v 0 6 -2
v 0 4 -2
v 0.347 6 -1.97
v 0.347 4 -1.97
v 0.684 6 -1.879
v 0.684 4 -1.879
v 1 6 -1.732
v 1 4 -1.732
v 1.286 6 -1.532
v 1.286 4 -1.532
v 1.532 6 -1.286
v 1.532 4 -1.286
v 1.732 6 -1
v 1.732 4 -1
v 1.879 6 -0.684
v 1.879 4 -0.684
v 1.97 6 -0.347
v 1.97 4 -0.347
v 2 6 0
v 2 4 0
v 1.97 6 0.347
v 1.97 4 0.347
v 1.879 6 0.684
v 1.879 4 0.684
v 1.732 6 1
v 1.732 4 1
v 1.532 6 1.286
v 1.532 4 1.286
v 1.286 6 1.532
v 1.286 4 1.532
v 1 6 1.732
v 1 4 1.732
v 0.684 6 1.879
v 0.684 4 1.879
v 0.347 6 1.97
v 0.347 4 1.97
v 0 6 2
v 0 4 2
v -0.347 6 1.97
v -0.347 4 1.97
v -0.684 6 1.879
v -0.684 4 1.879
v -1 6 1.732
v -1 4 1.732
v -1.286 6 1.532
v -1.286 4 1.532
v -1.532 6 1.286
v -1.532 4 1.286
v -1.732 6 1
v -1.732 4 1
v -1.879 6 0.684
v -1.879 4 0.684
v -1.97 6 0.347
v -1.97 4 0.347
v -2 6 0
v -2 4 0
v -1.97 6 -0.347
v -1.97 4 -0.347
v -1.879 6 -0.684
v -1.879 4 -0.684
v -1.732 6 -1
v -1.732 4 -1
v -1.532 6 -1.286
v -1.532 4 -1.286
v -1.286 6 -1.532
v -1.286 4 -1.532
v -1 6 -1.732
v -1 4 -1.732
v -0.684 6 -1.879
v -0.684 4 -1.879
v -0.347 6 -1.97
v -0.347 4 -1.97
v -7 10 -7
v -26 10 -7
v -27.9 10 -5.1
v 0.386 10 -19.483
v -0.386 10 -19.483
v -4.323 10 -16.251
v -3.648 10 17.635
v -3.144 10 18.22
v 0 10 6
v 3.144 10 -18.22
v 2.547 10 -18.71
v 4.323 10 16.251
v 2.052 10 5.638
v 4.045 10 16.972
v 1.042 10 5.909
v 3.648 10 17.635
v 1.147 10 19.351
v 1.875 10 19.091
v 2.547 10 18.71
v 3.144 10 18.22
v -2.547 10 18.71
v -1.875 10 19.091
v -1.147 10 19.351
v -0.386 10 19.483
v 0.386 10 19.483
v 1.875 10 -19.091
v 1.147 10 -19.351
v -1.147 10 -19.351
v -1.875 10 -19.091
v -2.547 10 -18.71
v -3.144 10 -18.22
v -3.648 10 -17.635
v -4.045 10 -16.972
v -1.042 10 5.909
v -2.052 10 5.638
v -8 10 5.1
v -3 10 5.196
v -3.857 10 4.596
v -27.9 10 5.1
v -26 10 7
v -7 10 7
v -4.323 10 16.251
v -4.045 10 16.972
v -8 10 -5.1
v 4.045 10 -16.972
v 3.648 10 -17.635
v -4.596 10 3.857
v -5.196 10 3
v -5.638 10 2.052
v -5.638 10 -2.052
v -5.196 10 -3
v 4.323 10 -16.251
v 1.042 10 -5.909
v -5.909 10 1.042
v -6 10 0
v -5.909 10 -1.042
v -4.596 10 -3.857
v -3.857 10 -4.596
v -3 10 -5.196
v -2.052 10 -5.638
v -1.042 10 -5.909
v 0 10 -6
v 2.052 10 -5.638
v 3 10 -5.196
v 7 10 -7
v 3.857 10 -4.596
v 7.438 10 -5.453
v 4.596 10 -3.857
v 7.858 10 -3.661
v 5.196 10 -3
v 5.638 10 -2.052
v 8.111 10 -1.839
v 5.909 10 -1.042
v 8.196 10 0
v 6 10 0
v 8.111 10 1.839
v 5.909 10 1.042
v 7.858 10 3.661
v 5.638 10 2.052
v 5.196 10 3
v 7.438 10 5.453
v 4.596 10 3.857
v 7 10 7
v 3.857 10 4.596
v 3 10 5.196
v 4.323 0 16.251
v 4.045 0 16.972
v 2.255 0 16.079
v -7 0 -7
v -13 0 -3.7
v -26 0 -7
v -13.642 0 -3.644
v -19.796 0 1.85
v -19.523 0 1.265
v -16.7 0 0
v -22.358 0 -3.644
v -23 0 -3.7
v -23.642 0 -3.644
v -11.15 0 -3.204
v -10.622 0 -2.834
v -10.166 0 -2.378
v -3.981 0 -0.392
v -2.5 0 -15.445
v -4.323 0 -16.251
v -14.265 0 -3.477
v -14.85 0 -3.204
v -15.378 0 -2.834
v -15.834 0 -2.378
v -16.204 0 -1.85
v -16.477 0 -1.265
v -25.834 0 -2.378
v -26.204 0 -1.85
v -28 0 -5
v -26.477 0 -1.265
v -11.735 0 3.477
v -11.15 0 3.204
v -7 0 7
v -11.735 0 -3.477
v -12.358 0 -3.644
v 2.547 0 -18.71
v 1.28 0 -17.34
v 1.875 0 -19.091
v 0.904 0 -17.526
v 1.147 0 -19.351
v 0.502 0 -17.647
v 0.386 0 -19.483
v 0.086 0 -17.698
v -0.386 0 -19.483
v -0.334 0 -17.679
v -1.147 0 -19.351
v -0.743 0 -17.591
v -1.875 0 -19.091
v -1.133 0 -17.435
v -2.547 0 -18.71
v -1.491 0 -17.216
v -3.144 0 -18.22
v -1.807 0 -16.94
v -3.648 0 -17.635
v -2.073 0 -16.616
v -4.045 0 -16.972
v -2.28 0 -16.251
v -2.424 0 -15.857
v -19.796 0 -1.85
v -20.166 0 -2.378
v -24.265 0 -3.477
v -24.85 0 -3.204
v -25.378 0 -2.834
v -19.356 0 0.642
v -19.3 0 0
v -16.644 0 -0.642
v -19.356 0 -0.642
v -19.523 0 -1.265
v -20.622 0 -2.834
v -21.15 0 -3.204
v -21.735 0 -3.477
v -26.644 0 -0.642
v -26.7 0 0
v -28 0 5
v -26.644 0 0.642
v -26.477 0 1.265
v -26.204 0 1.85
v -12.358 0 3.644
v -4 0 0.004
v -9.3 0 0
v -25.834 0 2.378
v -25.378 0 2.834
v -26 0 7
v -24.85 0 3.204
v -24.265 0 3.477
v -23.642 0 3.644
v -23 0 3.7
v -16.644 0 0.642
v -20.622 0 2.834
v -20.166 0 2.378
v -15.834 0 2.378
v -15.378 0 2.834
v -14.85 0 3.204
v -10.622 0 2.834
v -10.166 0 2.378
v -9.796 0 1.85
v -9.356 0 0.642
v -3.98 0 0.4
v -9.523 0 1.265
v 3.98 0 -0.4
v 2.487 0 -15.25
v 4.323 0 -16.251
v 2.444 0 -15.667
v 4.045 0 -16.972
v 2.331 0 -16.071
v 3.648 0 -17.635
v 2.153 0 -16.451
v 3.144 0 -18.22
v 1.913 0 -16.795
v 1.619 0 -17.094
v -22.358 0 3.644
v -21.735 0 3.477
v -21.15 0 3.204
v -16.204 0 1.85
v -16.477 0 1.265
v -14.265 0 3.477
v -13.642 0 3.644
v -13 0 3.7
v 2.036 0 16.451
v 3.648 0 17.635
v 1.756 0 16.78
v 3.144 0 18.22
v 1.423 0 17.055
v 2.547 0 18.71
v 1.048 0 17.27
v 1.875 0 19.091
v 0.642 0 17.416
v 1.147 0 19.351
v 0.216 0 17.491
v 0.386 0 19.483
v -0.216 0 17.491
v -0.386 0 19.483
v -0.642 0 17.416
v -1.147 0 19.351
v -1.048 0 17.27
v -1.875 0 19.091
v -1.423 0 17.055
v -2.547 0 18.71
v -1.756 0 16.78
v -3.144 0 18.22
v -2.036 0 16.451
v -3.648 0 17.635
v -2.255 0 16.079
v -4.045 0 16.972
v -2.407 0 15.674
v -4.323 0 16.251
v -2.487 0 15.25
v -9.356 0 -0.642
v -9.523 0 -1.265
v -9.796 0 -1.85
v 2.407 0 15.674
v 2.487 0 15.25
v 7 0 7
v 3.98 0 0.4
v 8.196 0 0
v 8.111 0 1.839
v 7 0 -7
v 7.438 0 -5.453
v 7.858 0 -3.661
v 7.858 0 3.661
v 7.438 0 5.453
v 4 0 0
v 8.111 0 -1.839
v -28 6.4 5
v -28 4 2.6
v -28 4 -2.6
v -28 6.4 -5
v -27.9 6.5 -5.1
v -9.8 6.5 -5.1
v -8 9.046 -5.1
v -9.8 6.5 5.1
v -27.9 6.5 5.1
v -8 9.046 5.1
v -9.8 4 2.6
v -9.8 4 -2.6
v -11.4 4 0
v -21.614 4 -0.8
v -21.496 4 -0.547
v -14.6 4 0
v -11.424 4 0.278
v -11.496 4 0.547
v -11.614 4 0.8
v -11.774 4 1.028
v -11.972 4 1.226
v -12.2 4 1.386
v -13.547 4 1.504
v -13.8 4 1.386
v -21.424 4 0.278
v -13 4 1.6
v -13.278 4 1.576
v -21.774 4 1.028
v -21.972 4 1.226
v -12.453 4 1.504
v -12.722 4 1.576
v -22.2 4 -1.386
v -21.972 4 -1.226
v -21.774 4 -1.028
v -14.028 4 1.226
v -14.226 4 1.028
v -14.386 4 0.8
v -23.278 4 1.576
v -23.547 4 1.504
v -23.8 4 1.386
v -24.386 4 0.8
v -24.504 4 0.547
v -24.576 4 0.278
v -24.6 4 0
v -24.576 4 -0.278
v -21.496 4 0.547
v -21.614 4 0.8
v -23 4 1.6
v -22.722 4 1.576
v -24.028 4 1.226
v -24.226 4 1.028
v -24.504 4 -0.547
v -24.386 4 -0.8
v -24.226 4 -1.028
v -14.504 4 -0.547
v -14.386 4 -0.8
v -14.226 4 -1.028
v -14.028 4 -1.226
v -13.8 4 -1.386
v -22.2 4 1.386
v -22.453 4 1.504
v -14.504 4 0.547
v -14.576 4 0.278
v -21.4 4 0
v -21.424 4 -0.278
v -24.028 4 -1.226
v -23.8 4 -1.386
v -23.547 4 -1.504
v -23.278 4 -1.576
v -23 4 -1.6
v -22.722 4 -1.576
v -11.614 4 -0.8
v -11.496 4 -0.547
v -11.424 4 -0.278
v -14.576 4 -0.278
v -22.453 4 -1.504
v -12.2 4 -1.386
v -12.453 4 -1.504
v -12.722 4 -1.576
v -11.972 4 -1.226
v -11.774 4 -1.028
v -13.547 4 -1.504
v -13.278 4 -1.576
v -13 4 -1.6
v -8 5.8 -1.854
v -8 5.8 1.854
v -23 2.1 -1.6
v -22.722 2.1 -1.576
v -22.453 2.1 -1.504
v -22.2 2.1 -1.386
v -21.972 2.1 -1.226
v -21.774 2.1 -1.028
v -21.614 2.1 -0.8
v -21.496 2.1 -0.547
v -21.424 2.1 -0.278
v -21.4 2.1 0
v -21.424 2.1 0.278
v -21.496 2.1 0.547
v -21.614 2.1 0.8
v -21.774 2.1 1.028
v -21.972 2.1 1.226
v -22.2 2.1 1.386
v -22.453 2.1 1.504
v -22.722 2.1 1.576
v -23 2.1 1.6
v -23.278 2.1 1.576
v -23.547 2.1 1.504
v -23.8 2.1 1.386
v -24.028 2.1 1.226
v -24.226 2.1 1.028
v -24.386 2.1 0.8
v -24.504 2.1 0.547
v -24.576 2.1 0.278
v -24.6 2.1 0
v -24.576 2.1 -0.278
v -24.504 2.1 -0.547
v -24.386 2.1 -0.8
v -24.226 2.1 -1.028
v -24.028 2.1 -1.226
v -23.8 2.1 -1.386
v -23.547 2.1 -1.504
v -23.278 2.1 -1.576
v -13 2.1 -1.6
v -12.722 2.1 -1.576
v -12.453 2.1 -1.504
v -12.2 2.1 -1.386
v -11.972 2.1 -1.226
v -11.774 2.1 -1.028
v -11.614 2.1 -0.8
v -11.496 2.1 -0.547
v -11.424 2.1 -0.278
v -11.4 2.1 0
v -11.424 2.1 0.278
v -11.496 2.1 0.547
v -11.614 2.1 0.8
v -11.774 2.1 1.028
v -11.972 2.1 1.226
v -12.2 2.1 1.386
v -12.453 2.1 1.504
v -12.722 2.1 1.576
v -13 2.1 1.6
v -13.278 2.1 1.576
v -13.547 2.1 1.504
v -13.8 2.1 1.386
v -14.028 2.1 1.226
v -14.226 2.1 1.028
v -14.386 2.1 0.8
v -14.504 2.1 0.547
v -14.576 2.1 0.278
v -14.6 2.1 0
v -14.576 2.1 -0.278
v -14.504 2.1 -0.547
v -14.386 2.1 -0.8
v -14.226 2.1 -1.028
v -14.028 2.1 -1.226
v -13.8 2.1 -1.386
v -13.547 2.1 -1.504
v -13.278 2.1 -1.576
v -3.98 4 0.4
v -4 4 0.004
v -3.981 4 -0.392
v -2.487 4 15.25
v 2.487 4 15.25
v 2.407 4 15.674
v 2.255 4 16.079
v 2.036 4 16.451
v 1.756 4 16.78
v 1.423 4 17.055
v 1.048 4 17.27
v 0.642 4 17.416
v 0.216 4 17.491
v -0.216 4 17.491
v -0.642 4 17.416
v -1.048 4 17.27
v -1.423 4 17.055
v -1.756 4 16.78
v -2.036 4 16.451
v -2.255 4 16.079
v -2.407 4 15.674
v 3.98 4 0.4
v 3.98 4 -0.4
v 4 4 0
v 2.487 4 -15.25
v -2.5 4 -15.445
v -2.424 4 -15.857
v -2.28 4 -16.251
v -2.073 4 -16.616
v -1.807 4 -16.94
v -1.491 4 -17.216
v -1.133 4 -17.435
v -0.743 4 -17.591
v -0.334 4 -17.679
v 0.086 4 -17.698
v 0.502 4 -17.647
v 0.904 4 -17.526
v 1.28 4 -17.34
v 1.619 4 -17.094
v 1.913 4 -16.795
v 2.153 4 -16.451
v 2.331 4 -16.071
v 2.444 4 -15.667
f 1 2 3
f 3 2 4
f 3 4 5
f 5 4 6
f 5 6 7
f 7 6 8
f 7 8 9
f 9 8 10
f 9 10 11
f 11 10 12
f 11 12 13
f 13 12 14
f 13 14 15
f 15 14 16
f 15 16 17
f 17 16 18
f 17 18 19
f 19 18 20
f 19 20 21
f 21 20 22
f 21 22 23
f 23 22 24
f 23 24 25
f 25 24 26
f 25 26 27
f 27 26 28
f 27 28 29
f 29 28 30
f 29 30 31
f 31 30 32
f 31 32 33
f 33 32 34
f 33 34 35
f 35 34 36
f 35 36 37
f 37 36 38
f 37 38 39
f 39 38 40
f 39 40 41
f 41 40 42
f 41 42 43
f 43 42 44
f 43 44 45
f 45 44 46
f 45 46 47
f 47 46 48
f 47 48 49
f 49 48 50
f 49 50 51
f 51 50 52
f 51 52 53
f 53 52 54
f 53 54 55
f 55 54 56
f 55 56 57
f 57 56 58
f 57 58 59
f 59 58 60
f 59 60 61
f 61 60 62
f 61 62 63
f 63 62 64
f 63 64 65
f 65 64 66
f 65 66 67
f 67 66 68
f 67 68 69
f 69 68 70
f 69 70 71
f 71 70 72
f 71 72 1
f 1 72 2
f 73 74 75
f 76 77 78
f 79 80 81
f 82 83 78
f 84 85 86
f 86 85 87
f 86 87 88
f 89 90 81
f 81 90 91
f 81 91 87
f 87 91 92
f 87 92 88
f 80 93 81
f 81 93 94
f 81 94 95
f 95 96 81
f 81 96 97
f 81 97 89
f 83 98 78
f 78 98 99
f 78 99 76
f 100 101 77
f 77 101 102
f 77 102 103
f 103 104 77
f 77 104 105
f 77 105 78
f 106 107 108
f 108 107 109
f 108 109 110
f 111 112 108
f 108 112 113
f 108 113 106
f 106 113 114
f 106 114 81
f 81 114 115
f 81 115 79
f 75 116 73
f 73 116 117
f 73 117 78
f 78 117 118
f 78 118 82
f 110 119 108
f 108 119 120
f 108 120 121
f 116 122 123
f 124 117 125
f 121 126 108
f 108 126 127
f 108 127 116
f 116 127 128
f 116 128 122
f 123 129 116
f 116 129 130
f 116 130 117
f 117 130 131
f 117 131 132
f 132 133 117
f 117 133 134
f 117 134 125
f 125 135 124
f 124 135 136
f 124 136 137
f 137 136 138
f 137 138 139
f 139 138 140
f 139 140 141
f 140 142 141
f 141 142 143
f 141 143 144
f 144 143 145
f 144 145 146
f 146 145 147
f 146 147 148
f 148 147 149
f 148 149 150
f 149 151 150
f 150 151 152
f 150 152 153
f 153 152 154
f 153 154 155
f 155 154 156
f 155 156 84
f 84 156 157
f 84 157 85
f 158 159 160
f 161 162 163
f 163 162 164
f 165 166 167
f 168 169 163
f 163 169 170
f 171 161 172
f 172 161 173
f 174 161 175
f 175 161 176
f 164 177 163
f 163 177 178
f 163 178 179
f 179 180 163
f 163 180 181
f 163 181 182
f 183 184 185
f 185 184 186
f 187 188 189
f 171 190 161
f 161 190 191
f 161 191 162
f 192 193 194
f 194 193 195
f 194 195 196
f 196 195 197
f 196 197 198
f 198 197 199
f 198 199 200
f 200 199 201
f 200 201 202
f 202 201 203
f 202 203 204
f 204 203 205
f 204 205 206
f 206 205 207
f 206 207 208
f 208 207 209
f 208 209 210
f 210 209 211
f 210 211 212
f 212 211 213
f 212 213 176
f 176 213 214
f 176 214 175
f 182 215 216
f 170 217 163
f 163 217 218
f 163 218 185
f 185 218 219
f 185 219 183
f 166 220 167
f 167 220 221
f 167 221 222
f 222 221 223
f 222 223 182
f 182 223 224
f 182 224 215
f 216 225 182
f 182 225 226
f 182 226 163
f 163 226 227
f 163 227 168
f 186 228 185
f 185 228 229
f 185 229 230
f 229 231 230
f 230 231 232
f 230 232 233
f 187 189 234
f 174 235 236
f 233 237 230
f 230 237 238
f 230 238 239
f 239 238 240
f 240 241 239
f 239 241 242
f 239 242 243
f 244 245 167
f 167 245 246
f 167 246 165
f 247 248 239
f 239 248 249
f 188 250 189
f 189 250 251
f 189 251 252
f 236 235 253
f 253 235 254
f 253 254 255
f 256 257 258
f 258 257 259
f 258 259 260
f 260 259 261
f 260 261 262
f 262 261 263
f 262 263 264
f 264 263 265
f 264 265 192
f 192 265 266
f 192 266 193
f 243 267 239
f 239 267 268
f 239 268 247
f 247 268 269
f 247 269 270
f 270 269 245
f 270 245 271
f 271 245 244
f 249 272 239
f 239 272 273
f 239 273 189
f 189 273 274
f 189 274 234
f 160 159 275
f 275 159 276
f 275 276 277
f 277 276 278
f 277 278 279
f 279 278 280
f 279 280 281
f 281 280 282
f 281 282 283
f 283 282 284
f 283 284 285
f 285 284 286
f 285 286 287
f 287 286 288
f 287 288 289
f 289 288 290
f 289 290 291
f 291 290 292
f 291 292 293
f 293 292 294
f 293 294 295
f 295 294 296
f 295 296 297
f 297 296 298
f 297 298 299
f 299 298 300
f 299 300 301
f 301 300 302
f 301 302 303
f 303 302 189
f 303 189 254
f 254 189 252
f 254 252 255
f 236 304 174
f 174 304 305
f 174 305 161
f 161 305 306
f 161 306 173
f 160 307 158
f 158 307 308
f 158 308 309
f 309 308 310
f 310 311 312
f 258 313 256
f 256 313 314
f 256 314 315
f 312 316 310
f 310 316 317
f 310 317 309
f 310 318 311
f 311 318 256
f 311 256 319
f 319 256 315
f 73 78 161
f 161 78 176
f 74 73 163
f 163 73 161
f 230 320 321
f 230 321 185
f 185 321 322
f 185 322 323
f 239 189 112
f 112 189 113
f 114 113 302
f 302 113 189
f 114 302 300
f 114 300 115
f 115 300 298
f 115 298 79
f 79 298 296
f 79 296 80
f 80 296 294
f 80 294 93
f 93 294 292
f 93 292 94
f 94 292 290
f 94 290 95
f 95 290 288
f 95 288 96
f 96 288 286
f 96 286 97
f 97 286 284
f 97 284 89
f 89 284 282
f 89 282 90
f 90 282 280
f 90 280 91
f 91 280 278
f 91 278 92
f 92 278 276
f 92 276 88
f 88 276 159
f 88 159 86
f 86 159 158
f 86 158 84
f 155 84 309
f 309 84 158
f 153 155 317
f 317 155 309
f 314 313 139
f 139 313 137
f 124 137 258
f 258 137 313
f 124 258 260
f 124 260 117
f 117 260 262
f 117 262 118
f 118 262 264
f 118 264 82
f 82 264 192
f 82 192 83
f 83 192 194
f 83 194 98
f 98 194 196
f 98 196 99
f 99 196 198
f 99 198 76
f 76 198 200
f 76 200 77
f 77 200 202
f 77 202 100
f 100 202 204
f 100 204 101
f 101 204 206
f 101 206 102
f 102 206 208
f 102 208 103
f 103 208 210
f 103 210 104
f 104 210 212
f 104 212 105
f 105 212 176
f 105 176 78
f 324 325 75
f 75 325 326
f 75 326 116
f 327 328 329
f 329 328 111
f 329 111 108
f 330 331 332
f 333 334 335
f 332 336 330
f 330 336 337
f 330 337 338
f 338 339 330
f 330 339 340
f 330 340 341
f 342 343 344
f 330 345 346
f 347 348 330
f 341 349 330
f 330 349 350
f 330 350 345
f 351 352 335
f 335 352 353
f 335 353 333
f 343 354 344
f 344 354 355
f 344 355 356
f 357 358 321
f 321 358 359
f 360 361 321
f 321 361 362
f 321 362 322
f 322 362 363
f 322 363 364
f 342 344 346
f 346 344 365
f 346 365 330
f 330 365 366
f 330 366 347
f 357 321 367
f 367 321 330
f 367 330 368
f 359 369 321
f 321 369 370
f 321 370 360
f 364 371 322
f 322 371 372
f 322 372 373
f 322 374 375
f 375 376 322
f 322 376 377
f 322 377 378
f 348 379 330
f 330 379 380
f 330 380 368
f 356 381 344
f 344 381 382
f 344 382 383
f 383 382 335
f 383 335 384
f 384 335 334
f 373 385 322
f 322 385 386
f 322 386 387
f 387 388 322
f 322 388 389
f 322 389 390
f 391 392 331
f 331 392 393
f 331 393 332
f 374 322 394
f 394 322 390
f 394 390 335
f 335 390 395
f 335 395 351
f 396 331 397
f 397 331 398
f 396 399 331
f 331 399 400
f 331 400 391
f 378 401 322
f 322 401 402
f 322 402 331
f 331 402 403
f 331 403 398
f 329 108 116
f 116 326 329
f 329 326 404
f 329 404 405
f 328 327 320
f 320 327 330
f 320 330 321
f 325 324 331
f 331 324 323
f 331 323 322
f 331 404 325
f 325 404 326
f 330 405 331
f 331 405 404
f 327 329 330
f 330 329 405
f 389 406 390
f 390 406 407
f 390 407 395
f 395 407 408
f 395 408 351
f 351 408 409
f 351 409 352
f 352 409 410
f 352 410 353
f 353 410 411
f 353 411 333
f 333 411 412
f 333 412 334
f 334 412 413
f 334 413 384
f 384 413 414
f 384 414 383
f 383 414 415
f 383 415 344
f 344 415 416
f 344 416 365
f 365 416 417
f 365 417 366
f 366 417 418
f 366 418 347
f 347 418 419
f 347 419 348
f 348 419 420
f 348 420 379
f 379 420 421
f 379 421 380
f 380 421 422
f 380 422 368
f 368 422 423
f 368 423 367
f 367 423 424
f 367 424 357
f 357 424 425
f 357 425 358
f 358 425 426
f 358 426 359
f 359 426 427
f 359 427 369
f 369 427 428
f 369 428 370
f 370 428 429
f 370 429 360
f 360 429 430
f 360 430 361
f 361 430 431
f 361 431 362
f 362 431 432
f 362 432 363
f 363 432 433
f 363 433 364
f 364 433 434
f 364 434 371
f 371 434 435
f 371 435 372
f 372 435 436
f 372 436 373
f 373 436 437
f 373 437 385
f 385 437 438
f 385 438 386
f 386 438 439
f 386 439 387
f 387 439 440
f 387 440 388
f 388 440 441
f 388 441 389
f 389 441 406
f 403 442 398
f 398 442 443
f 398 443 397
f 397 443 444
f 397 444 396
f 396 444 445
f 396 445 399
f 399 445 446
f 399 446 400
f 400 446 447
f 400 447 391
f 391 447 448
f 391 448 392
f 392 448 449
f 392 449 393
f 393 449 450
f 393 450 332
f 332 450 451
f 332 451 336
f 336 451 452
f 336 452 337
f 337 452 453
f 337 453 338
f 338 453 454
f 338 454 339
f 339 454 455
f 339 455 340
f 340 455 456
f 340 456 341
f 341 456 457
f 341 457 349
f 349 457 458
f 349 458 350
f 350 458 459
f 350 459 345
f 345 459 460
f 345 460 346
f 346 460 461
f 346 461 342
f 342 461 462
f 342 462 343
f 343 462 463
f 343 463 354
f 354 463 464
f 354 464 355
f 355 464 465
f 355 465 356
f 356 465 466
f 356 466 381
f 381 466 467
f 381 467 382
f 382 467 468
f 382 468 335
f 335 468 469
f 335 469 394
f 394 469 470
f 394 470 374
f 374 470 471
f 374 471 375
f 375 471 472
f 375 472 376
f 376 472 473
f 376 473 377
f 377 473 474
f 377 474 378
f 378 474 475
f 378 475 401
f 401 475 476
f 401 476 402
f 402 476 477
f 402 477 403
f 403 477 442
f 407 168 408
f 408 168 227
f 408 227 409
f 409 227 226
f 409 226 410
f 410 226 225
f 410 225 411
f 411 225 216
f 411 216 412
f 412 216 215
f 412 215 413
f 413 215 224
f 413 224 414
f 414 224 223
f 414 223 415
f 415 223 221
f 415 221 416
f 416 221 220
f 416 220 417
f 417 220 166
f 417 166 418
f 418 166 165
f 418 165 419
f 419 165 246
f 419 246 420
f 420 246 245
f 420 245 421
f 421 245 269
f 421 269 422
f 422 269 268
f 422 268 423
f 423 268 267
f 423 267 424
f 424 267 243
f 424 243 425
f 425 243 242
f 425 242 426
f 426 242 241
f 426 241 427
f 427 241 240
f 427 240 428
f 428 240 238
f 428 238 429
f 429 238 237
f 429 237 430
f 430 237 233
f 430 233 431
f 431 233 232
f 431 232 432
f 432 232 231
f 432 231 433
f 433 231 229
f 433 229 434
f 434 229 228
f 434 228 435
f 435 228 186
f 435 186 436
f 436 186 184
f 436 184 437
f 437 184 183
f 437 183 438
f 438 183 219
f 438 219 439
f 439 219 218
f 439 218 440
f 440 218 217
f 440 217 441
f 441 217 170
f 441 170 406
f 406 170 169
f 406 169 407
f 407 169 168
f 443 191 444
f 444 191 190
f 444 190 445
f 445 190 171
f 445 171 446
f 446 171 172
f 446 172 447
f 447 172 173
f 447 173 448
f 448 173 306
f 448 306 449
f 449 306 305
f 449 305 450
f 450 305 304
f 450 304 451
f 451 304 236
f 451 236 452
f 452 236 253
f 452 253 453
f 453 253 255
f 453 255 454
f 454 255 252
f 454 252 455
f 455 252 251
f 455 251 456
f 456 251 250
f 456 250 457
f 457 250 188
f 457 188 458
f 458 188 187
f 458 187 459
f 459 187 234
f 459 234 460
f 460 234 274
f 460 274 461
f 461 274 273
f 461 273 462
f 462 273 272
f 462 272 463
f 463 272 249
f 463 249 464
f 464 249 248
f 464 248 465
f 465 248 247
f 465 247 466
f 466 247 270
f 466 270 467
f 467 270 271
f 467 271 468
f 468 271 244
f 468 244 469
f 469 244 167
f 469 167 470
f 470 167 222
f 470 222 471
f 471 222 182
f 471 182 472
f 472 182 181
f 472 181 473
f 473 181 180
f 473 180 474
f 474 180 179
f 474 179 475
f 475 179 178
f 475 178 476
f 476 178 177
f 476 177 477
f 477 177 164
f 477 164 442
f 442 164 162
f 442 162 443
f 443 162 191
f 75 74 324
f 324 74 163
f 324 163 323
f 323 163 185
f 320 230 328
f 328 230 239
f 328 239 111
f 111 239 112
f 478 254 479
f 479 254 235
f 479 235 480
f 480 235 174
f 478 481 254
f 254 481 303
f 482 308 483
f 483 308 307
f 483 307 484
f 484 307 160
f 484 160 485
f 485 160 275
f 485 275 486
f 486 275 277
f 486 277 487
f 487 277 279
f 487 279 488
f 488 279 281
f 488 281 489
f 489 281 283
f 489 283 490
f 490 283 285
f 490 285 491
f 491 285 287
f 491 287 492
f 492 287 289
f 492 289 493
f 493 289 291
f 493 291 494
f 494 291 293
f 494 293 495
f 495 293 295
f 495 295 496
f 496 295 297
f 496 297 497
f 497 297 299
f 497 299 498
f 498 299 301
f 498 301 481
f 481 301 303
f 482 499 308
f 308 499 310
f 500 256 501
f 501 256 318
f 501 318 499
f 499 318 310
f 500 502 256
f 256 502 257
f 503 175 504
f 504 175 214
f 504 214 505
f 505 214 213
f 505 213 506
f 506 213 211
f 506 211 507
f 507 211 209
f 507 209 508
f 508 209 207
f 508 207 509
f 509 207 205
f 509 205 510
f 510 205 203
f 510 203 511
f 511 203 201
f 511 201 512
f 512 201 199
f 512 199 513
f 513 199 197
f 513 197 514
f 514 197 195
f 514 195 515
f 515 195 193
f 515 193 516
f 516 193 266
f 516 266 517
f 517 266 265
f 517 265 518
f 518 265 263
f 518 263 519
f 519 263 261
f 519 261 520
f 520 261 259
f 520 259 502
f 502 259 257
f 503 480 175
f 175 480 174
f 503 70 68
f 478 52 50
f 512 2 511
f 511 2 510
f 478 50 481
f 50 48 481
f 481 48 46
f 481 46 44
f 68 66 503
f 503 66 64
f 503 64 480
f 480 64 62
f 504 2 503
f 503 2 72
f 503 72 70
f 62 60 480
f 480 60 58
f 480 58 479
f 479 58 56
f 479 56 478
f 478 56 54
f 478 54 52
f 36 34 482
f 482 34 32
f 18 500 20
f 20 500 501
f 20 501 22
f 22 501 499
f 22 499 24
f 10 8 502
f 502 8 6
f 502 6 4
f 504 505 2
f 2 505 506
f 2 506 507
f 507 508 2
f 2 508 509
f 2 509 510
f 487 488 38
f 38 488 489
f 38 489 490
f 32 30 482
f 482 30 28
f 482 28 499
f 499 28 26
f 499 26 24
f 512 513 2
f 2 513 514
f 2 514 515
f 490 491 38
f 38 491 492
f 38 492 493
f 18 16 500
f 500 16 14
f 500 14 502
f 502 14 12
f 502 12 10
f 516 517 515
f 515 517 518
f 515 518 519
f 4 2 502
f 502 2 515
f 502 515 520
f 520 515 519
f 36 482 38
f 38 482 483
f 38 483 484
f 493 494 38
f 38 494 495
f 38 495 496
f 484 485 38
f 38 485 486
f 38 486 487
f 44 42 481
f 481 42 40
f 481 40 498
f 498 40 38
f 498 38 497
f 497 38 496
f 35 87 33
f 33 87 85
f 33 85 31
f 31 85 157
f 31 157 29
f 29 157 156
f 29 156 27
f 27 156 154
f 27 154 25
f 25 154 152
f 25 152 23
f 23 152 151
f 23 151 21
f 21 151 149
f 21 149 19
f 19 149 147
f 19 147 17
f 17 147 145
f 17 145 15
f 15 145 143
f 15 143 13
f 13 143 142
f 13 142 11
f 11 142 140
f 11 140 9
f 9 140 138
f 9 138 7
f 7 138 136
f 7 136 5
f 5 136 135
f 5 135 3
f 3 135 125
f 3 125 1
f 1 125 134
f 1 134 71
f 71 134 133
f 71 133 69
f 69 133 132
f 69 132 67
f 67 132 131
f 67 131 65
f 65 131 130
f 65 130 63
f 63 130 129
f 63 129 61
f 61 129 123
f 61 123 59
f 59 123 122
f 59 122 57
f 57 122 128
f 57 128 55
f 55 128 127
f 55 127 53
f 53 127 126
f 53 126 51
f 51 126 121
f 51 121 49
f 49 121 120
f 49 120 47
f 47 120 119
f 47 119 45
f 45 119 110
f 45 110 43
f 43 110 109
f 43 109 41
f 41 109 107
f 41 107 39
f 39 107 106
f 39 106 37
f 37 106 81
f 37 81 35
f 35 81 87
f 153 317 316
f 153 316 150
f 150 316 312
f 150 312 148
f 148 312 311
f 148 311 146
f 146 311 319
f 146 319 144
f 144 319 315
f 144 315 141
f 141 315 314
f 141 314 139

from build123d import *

# Parameters (mm, degrees)
ESQUISSE1_R             = 2
BOSS_EXTRU_1_DEPTH      = 10
ESQUISSE2_W             = 10.2
ESQUISSE2_H             = 6
ENL_V_MAT_EXTRU_1_DEPTH = 20
CHANFREIN1_SIZE         = 2.5
CHANFREIN2_SIZE         = 1.8
ESQUISSE5_R             = 1.6
ENL_V_MAT_EXTRU_4_DEPTH = 7
CHANFREIN4_SIZE         = 2.1
CHANFREIN5_SIZE         = 2
ENL_V_MAT_EXTRU_5_DEPTH = 4
CHANFREIN6_SIZE         = 4
CONG_1_R                = 20


with BuildPart() as part:
    # Esquisse1 → Boss.-Extru.1 (new body)
    with BuildSketch(Plane(origin=(0, 0, 0), x_dir=(1, 0, 0), z_dir=(0, 1, 0))):
        with BuildLine():
            Line((-28, -7), (-7, -7))
            Line((-7, -7), (-4.322606063, -16.251030305))
            ThreePointArc((-4.322606063, -16.251030305), (0, -19.5), (4.322606063, -16.251030305))
            Line((4.322606063, -16.251030305), (7, -7))
            Line((7, -7), (8.983874701, 0))
            Line((8.983874701, 0), (7, 7))
            Line((7, 7), (4.322606063, 16.251030305))
            ThreePointArc((4.322606063, 16.251030305), (0, 19.5), (-4.322606063, 16.251030305))
            Line((-4.322606063, 16.251030305), (-7, 7))
            Line((-7, 7), (-28, 7))
            Line((-28, 7), (-28, -7))
        make_face()
        with Locations(Location((0, 0, 0), (0, 0, 270))):
            Circle(ESQUISSE1_R, mode=Mode.SUBTRACT)
    extrude(amount=BOSS_EXTRU_1_DEPTH)

    # Esquisse2 → Enlèv. mat.-Extru.1 (cut)
    with BuildSketch(Plane.ZY.offset(28)):
        with Locations((0, 7)):
            Rectangle(ESQUISSE2_W, ESQUISSE2_H)
    extrude(amount=-ENL_V_MAT_EXTRU_1_DEPTH, mode=Mode.SUBTRACT)

    # Chanfrein1
    chanfrein1_edges = [part.edges().sort_by_distance(p)[0] for p in [
        (-18, 4, -5.1),
        (-18, 4, 5.1),
    ]]
    chamfer(chanfrein1_edges, length=CHANFREIN1_SIZE)

    # Chanfrein2
    chanfrein2_edges = [part.edges().sort_by_distance(p)[0] for p in [
        (-8, 4, 0),
        (-8, 5.25, -3.85),
        (-8, 5.25, 3.85),
    ]]
    chamfer(chanfrein2_edges, length=CHANFREIN2_SIZE)

    # Esquisse5 → Enlèv. mat.-Extru.4 (cut)
    with BuildSketch(Plane.XZ):
        with Locations(Location((-23, 0, 0), (0, 0, 270))):
            Circle(ESQUISSE5_R)
        with Locations(Location((-13, 0, 0), (0, 0, 270))):
            Circle(ESQUISSE5_R)
    extrude(amount=-ENL_V_MAT_EXTRU_4_DEPTH, mode=Mode.SUBTRACT)

    # Chanfrein4
    chanfrein4_edges = [part.edges().sort_by_distance(p)[0] for p in [
        (-23, 0, 1.6),
        (-13, 0, 1.6),
    ]]
    chamfer(chanfrein4_edges, length=CHANFREIN4_SIZE)

    # Chanfrein5
    chanfrein5_edges = [part.edges().sort_by_distance(p)[0] for p in [
        (-28, 5, -7),
        (-28, 5, 7),
    ]]
    chamfer(chanfrein5_edges, length=CHANFREIN5_SIZE)

    # Esquisse6 → Enlèv. mat.-Extru.5 (cut)
    with BuildSketch(Plane.XZ):
        with BuildLine():
            Line((-3.980786407, -0.391585978), (-2.500022814, -15.44473884))
            ThreePointArc((-2.500022814, -15.44473884), (0.085507989, -17.698094096), (2.487468593, -15.25))
            Line((2.487468593, -15.25), (3.979949748, -0.4))
            ThreePointArc((3.979949748, -0.4), (4, 0), (3.979949748, 0.4))
            Line((3.979949748, 0.4), (2.487468593, 15.25))
            ThreePointArc((2.487468593, 15.25), (0, 17.5), (-2.487468593, 15.25))
            Line((-2.487468593, 15.25), (-3.979949748, 0.4))
            ThreePointArc((-3.979949748, 0.4), (-3.999997766, 0.004227758), (-3.980786407, -0.391585978))
        make_face()
    extrude(amount=-ENL_V_MAT_EXTRU_5_DEPTH, mode=Mode.SUBTRACT)

    # Chanfrein6
    chanfrein6_edges = [part.edges().sort_by_distance(p)[0] for p in [
        (0, 10, -2),
    ]]
    chamfer(chanfrein6_edges, length=CHANFREIN6_SIZE)

    # Congé1
    cong_1_edges = [part.edges().sort_by_distance(p)[0] for p in [
        (8.983874701, 5, 0),
    ]]
    fillet(cong_1_edges, radius=CONG_1_R)


solid = part.part
